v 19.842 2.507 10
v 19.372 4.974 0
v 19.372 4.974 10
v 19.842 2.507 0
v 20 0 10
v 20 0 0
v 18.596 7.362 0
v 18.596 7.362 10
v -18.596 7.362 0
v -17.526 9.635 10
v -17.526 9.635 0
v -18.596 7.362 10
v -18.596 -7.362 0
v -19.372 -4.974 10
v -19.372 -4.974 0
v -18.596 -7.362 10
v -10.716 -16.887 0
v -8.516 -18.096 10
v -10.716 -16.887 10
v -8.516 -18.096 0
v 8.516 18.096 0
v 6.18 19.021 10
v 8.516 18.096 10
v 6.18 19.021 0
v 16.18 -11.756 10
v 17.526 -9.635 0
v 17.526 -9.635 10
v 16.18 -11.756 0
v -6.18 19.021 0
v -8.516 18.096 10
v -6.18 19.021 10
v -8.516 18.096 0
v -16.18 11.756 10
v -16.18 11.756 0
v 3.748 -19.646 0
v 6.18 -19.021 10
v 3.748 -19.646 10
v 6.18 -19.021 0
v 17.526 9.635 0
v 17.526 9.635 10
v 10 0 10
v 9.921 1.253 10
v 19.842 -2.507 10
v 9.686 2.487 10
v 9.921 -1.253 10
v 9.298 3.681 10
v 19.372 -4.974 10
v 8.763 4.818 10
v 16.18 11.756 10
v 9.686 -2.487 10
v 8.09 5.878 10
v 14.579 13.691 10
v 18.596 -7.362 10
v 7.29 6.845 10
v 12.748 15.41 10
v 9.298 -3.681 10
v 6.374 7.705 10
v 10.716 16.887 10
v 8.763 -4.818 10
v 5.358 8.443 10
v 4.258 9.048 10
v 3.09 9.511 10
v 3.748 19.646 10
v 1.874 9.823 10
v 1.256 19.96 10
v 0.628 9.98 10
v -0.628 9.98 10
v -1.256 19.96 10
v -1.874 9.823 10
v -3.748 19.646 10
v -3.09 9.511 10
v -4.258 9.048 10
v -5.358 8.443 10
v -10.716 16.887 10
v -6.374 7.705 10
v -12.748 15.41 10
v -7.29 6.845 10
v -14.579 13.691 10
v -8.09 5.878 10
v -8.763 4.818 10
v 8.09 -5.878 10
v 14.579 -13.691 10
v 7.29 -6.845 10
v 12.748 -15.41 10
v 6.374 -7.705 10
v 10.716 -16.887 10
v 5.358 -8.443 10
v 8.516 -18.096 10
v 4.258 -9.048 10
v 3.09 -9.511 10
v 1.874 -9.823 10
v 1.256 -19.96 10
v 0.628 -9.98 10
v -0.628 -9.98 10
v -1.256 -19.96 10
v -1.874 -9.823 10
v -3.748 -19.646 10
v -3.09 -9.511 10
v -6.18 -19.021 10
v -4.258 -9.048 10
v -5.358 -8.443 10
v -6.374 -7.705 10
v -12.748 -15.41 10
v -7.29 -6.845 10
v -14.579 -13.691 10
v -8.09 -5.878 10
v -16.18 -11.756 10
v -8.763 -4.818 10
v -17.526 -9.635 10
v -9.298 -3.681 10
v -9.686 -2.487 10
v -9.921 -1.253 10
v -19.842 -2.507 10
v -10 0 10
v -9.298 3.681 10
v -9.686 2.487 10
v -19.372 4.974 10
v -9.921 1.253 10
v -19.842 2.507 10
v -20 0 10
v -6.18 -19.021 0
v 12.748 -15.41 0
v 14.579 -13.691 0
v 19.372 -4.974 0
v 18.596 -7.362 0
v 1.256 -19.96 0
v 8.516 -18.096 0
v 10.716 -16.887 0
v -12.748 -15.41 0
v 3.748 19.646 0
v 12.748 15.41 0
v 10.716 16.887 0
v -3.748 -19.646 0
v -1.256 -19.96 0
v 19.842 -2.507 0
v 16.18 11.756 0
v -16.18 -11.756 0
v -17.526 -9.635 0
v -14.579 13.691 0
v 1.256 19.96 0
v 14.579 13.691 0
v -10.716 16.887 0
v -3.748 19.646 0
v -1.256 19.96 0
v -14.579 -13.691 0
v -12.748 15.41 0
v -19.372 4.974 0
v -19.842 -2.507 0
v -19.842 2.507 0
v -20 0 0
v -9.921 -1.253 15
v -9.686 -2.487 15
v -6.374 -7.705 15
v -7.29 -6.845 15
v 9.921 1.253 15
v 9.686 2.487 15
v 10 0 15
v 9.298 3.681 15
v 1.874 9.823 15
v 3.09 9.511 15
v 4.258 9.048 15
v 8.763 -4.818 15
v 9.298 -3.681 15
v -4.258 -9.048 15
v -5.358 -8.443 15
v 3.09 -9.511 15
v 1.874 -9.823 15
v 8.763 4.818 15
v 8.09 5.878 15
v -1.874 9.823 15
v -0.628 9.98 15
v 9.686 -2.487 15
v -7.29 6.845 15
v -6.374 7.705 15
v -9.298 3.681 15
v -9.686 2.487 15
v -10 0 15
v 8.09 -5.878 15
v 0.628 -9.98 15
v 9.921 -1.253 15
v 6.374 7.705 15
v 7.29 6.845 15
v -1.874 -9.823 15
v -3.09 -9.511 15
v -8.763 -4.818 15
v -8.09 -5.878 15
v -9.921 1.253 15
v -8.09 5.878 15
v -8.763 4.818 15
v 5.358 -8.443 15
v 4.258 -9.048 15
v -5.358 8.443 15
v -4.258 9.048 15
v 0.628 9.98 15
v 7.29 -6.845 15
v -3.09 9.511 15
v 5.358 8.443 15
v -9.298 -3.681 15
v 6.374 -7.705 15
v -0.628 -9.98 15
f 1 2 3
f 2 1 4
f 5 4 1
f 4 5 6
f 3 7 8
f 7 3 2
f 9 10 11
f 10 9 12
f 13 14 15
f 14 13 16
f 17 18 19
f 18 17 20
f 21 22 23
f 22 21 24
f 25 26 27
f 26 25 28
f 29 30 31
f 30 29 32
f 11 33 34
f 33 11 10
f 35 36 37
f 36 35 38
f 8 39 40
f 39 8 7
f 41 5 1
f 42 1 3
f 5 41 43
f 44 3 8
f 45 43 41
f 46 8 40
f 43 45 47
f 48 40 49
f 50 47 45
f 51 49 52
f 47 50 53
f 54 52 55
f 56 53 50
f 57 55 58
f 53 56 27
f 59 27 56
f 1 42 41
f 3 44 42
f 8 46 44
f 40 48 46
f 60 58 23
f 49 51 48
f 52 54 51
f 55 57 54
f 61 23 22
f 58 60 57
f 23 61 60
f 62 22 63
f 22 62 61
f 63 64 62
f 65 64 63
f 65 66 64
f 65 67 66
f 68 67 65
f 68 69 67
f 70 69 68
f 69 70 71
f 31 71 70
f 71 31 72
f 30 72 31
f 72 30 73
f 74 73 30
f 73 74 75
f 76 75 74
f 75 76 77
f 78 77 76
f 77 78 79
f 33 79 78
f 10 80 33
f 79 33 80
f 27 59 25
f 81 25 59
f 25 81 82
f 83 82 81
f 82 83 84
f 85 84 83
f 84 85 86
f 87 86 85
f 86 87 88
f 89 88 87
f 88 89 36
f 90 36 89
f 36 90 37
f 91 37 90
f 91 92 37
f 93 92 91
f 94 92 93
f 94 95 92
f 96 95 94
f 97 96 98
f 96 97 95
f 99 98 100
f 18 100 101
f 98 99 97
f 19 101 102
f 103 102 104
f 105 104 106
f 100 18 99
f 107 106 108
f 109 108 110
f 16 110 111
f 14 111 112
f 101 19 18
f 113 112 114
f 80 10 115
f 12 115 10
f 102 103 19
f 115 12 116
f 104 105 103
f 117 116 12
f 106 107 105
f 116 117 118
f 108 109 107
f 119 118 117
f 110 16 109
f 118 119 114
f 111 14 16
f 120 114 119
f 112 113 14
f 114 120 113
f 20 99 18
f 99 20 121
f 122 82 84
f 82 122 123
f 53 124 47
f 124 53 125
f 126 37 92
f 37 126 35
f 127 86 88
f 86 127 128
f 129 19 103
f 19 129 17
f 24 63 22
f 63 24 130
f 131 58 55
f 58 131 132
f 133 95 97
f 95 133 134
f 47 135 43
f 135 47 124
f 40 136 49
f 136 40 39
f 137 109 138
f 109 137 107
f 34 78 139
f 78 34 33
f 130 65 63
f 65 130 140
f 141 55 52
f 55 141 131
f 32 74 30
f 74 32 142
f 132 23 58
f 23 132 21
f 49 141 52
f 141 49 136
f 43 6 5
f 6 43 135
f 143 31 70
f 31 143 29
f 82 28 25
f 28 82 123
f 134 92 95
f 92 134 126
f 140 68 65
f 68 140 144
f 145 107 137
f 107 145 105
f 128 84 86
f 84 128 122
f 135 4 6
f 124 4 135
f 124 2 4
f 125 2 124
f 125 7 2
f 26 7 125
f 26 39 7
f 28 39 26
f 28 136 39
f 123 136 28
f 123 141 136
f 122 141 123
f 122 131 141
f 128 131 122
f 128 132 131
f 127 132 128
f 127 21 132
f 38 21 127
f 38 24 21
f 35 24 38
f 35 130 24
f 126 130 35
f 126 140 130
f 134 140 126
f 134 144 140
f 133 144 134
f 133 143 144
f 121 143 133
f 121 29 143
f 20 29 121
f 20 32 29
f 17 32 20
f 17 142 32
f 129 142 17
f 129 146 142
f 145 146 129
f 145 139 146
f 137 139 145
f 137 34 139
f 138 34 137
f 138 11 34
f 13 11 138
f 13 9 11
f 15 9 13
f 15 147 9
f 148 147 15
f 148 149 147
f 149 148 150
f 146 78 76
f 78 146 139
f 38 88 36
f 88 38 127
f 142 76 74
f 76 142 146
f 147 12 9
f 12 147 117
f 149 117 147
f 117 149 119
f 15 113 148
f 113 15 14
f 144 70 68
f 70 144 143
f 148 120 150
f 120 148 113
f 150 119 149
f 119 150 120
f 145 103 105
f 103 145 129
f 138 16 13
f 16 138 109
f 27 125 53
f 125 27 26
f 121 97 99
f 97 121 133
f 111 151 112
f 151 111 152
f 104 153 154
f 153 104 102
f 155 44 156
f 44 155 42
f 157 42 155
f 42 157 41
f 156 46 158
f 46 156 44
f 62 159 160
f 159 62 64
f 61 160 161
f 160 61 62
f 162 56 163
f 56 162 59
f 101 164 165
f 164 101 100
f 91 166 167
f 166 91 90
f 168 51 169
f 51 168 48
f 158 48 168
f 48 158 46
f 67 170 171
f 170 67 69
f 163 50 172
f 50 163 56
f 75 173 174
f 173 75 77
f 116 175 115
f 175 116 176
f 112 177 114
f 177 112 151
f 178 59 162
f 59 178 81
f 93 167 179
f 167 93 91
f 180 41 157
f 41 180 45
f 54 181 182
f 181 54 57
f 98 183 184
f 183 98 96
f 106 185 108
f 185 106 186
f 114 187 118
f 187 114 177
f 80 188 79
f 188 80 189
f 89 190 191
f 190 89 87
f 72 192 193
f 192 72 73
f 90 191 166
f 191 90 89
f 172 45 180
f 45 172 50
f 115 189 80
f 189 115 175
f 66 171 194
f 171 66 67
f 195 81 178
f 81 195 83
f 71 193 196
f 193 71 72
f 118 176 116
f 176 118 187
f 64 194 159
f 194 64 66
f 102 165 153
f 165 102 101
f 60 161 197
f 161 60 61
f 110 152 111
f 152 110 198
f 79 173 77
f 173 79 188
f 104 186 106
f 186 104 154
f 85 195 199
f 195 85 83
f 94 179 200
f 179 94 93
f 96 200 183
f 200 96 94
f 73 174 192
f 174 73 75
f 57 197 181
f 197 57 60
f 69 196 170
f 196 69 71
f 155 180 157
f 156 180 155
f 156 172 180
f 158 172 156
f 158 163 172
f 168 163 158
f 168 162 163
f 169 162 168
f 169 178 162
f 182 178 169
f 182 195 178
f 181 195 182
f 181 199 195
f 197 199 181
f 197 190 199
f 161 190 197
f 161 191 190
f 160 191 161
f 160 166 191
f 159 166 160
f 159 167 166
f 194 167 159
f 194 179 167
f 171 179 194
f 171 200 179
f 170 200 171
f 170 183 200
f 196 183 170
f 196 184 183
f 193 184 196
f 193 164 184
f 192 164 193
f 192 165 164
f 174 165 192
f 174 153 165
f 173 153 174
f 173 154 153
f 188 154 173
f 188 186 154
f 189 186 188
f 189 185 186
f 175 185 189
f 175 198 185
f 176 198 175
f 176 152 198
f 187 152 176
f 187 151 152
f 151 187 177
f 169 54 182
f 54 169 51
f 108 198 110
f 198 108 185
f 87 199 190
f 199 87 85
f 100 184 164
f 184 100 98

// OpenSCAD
$fn=50;

cylinder(h=10, r=20);

translate([0, 0, 10]){

	cylinder(h=5, r=10);

}
